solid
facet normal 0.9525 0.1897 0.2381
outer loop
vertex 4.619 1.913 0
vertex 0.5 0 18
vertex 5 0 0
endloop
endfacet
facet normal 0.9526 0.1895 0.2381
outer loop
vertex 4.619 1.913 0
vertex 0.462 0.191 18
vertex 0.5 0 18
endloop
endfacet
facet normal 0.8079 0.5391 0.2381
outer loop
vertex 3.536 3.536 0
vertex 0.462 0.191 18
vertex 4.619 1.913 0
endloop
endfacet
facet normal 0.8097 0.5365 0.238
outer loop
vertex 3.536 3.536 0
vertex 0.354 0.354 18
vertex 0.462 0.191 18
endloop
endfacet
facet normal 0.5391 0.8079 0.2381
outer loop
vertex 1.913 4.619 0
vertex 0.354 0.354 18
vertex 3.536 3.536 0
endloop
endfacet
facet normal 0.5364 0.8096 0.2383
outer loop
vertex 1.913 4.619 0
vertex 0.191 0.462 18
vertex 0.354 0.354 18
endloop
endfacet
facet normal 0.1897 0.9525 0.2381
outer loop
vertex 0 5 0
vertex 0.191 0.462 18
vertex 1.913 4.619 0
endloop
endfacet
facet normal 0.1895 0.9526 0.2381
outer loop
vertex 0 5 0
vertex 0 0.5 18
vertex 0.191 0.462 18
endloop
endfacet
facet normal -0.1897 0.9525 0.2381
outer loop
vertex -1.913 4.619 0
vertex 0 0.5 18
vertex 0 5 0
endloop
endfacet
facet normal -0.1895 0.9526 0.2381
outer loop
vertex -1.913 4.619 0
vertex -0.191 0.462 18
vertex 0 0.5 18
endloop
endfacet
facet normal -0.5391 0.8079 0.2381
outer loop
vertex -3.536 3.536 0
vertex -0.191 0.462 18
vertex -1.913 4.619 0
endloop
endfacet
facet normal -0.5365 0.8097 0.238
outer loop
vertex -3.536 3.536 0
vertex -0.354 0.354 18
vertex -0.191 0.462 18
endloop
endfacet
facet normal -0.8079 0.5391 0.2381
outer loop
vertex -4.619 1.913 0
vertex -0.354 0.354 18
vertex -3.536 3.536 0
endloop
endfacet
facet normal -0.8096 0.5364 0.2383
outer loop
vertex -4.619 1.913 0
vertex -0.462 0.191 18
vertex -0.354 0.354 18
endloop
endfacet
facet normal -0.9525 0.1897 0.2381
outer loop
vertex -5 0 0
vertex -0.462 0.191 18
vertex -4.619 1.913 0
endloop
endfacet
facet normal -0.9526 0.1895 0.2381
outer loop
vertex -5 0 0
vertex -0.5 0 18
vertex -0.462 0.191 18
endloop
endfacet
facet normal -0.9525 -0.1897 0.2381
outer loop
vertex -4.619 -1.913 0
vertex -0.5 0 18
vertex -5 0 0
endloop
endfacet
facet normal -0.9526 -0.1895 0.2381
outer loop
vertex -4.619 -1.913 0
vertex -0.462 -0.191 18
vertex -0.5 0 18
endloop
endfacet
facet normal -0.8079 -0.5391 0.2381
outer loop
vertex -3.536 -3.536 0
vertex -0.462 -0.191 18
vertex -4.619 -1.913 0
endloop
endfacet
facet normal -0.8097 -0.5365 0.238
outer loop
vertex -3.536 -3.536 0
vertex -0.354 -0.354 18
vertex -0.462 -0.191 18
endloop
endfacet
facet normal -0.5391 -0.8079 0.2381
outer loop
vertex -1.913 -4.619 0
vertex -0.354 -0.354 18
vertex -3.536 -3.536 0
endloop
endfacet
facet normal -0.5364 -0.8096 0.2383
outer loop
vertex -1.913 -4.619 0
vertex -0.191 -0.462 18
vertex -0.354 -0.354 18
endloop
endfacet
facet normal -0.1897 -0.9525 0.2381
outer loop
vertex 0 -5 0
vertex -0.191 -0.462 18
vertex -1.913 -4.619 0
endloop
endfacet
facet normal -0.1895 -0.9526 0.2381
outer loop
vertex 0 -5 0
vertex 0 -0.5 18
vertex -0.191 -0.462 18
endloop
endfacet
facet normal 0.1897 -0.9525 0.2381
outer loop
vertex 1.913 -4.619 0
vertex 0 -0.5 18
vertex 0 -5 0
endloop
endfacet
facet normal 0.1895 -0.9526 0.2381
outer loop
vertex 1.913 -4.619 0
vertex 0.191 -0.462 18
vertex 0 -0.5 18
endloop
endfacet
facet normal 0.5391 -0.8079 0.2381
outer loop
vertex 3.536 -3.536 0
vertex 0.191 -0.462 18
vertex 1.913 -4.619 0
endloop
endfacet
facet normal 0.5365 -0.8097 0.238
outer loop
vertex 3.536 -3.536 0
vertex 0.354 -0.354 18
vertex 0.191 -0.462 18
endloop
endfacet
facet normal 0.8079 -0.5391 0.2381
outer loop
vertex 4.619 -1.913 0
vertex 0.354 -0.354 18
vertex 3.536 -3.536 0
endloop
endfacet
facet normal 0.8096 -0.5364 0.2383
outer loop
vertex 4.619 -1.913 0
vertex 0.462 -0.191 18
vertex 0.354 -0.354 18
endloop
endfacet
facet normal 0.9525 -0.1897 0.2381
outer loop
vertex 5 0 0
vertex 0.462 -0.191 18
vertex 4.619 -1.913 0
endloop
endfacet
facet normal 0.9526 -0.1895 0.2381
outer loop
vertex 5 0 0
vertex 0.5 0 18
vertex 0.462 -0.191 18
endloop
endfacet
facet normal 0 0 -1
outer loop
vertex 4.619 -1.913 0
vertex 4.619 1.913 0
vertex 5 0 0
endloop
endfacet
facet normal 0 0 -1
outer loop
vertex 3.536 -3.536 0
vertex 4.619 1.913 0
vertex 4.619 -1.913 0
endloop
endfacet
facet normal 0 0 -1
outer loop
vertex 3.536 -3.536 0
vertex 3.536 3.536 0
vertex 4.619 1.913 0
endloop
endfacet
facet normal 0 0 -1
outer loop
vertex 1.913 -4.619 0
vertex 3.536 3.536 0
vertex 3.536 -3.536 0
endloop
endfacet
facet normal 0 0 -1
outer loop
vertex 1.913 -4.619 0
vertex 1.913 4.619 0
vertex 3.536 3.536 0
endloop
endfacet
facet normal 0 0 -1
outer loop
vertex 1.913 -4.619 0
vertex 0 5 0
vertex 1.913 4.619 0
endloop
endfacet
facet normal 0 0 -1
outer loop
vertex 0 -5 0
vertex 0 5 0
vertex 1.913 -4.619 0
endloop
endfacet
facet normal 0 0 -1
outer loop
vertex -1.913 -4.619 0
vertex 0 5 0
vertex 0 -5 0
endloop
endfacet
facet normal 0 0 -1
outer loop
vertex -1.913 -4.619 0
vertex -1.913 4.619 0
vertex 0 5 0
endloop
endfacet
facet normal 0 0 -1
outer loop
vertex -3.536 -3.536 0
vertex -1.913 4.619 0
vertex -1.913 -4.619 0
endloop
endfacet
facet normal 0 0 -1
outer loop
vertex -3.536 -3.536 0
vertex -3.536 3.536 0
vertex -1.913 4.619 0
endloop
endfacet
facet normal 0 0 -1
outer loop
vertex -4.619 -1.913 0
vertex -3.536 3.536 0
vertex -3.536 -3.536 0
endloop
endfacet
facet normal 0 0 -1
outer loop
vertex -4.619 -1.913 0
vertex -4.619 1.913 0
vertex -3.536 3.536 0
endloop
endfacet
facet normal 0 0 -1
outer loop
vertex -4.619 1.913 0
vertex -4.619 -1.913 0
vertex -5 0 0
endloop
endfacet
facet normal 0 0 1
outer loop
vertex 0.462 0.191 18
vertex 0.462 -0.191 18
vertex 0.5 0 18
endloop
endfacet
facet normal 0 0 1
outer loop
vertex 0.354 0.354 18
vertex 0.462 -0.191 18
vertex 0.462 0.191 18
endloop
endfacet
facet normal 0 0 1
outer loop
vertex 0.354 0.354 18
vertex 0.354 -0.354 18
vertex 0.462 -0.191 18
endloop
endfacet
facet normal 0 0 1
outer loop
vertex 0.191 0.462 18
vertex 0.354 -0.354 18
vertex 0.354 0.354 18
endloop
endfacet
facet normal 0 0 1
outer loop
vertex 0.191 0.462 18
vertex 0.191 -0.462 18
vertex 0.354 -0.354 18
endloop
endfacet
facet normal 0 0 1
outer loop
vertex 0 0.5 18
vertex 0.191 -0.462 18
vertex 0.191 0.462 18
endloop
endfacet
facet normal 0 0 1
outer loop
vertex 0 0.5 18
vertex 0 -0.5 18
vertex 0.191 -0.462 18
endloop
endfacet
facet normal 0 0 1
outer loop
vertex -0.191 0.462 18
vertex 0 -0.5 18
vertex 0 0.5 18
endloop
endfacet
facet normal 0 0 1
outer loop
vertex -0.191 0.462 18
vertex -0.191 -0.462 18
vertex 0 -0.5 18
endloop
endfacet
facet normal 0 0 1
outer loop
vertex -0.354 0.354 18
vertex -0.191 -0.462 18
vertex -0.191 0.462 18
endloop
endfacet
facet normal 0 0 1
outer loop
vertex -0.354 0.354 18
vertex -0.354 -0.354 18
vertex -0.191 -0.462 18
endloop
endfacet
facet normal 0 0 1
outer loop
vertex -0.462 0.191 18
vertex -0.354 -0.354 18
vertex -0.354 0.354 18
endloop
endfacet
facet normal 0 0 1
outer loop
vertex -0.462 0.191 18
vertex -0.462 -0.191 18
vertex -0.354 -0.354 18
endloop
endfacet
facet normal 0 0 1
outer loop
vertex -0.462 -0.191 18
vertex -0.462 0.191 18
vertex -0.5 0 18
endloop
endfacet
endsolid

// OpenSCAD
sirka=5;
vyska=18;

color("green") cylinder(vyska, sirka, 0.5);
